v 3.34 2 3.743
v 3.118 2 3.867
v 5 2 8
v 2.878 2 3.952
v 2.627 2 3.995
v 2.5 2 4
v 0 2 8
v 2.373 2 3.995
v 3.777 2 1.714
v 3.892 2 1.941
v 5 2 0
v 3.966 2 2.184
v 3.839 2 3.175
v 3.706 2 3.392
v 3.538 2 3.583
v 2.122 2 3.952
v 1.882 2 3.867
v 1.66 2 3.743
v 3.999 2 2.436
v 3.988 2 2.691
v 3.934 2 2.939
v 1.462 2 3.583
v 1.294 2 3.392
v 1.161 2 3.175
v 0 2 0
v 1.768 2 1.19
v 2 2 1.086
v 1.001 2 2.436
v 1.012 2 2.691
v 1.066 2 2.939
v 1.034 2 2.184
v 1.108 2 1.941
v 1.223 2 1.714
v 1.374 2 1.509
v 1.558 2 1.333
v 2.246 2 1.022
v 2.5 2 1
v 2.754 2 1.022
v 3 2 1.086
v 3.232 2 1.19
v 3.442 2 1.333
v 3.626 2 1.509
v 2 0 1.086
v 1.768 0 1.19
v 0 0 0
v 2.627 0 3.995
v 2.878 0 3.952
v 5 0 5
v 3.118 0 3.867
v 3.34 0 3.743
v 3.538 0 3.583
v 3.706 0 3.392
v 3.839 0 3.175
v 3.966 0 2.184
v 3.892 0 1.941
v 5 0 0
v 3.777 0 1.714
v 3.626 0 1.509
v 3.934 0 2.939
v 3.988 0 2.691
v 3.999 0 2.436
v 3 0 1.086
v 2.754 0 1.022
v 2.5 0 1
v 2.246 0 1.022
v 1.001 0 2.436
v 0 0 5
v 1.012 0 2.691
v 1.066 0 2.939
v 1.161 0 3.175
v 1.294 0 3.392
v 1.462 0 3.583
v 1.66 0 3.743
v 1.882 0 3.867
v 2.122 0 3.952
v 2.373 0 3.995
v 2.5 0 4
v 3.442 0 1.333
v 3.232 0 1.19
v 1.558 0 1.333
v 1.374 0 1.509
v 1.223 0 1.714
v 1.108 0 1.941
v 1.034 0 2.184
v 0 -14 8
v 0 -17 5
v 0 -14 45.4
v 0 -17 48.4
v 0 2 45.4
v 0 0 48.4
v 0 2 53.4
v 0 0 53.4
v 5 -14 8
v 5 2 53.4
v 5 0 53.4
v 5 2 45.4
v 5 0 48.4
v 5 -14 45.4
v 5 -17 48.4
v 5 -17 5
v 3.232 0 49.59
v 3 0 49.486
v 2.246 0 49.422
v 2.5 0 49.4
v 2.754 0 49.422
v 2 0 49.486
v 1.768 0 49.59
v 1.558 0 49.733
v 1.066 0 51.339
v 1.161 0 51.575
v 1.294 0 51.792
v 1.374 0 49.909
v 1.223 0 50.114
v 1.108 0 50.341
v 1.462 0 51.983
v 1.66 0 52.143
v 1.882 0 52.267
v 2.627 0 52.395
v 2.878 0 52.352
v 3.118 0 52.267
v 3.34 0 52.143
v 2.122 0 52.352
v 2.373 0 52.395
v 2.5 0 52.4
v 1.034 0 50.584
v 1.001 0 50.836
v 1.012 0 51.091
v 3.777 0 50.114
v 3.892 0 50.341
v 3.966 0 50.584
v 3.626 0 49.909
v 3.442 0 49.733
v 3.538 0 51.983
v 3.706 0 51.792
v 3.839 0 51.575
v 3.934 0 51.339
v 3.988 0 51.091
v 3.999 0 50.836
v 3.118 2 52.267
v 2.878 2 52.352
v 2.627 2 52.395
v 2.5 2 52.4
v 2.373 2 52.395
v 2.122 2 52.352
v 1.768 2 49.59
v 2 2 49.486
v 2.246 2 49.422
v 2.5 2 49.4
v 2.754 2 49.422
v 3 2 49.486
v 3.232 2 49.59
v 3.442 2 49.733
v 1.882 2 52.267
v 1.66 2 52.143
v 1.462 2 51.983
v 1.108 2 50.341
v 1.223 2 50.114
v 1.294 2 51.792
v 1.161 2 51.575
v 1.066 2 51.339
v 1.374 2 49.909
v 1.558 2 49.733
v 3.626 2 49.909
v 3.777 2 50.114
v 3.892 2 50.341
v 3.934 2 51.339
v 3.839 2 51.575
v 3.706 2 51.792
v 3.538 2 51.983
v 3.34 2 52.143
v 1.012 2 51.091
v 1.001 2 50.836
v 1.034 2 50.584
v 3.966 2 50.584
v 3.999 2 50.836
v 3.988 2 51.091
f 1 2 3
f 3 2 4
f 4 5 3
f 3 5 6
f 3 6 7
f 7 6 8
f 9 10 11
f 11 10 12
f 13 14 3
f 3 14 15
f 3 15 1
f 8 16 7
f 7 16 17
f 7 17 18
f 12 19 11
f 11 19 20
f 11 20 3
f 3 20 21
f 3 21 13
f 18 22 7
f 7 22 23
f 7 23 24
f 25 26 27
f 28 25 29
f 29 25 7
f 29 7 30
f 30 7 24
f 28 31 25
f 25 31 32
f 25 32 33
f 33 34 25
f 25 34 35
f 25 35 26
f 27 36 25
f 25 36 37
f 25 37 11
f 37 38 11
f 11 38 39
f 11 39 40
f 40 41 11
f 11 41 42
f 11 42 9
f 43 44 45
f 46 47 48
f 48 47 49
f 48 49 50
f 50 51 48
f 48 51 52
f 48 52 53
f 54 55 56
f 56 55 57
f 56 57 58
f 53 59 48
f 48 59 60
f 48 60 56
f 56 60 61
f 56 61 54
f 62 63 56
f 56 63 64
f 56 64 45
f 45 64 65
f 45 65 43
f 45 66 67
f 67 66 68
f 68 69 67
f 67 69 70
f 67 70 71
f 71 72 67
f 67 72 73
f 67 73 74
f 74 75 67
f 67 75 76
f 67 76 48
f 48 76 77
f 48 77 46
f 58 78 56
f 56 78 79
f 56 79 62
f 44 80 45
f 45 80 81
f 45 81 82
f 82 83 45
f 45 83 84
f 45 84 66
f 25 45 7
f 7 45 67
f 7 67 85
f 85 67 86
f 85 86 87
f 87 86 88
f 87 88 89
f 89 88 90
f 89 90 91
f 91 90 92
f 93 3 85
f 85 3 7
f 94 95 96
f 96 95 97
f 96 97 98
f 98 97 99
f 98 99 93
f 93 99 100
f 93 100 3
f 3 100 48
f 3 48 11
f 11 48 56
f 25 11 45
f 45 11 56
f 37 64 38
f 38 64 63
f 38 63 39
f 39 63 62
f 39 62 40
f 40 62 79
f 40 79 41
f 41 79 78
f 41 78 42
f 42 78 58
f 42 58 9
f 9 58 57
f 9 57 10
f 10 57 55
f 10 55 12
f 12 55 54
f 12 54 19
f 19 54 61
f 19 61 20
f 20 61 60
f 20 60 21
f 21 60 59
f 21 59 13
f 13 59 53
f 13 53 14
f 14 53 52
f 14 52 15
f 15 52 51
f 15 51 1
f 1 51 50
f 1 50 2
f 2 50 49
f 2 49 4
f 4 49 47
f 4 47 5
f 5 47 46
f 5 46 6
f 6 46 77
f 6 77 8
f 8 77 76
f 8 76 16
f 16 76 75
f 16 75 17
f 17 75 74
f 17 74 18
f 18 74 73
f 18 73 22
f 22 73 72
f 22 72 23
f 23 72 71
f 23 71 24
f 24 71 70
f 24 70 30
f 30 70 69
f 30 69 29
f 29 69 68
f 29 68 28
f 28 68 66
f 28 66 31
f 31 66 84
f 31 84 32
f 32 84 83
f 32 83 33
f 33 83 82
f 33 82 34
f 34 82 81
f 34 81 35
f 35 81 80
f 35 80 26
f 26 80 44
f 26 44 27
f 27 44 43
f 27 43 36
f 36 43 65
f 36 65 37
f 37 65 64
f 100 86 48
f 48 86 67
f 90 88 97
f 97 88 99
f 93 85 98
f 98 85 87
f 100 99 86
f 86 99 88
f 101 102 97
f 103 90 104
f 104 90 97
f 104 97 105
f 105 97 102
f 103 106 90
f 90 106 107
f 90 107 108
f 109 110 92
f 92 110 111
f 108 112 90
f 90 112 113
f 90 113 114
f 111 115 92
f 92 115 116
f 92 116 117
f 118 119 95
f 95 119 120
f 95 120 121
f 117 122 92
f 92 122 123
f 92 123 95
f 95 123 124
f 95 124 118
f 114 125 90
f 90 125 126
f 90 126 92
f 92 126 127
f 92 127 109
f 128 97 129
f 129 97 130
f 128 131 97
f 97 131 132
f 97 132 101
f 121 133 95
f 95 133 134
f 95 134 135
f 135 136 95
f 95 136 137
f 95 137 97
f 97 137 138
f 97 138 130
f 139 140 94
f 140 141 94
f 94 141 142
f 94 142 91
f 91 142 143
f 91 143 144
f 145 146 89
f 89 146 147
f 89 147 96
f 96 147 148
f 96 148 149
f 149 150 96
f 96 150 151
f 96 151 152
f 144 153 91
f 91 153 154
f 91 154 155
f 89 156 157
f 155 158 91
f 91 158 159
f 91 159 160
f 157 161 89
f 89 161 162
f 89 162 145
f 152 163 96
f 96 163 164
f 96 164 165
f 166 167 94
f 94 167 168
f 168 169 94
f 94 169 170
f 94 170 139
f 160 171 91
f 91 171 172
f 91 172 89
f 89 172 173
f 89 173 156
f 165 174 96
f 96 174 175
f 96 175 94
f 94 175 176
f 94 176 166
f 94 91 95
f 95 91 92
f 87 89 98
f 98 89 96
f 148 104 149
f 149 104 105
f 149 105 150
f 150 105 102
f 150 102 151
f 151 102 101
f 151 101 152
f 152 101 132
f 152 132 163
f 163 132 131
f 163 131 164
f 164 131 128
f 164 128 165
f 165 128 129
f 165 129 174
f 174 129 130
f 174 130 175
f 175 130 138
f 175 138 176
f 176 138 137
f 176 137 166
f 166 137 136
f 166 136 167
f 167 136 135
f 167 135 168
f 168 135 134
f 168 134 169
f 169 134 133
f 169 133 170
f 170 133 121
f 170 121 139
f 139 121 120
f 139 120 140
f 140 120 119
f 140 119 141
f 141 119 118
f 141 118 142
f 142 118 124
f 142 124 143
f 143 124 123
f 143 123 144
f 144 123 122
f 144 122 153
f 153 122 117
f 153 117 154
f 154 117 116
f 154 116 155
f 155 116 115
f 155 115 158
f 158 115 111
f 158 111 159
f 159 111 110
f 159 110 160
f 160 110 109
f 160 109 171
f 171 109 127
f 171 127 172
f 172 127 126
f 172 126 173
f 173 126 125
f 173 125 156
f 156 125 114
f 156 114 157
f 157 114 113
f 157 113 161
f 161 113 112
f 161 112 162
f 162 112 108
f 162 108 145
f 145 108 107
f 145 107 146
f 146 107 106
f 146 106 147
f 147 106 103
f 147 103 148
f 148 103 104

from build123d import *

# Parameters (mm, degrees)
SKETCH_1_W        = 5
SKETCH_1_H        = 8
SKETCH_1_R        = 1.5
EXTRUDE_1_DEPTH   = 2
EXTRUDE_1_2_DEPTH = 2
EXTRUDE_START     = 2
SKETCH_1_6_W      = 5
SKETCH_1_6_H      = 3
EXTRUDE_2_DEPTH   = 16
SKETCH_2_W        = 5
SKETCH_2_H        = 3
EXTRUDE_3_DEPTH   = 43.4


with BuildPart() as part:
    # 草图1 → 凸台-拉伸1 (new body)
    with BuildSketch(Plane(origin=(0, 0, 0), x_dir=(1, 0, 0), z_dir=(0, 1, 0))):
        with Locations((2.5, -4)):
            Rectangle(SKETCH_1_W, SKETCH_1_H)
        with Locations(Location((2.5, -2.5, 0), (0, 0, 270))):
            Circle(SKETCH_1_R, mode=Mode.SUBTRACT)
    extrude(amount=EXTRUDE_1_DEPTH)



with BuildPart() as body_2:
    # 草图1 → Extrude 1 2 (new body)
    with BuildSketch(Plane(origin=(0, 0, 0), x_dir=(1, 0, 0), z_dir=(0, 1, 0))):
        with Locations((2.5, -49.4)):
            Rectangle(SKETCH_1_W, SKETCH_1_H)
        with Locations(Location((2.5, -50.9, 0), (0, 0, 270))):
            Circle(SKETCH_1_R, mode=Mode.SUBTRACT)
    extrude(amount=EXTRUDE_1_2_DEPTH)


with BuildPart() as part_1:
    add(part.part)

    add(body_2.part)  # 凸台-拉伸2 merges body 2
    # 草图1<6> → 凸台-拉伸2 (add)
    with BuildSketch(Plane(origin=(0, 0, 0), x_dir=(1, 0, 0), z_dir=(0, 1, 0)).offset(EXTRUDE_START)):
        with Locations((2.5, -46.9)):
            Rectangle(SKETCH_1_6_W, SKETCH_1_6_H)
        with Locations((2.5, -6.5)):
            Rectangle(SKETCH_1_6_W, SKETCH_1_6_H)
    extrude(amount=-EXTRUDE_2_DEPTH)

    # 草图2 → 凸台-拉伸3 (add)
    with BuildSketch(Plane.XY.offset(48.4)):
        with Locations((2.5, -15.5)):
            Rectangle(SKETCH_2_W, SKETCH_2_H)
    extrude(amount=-EXTRUDE_3_DEPTH)


solid = part_1.part
